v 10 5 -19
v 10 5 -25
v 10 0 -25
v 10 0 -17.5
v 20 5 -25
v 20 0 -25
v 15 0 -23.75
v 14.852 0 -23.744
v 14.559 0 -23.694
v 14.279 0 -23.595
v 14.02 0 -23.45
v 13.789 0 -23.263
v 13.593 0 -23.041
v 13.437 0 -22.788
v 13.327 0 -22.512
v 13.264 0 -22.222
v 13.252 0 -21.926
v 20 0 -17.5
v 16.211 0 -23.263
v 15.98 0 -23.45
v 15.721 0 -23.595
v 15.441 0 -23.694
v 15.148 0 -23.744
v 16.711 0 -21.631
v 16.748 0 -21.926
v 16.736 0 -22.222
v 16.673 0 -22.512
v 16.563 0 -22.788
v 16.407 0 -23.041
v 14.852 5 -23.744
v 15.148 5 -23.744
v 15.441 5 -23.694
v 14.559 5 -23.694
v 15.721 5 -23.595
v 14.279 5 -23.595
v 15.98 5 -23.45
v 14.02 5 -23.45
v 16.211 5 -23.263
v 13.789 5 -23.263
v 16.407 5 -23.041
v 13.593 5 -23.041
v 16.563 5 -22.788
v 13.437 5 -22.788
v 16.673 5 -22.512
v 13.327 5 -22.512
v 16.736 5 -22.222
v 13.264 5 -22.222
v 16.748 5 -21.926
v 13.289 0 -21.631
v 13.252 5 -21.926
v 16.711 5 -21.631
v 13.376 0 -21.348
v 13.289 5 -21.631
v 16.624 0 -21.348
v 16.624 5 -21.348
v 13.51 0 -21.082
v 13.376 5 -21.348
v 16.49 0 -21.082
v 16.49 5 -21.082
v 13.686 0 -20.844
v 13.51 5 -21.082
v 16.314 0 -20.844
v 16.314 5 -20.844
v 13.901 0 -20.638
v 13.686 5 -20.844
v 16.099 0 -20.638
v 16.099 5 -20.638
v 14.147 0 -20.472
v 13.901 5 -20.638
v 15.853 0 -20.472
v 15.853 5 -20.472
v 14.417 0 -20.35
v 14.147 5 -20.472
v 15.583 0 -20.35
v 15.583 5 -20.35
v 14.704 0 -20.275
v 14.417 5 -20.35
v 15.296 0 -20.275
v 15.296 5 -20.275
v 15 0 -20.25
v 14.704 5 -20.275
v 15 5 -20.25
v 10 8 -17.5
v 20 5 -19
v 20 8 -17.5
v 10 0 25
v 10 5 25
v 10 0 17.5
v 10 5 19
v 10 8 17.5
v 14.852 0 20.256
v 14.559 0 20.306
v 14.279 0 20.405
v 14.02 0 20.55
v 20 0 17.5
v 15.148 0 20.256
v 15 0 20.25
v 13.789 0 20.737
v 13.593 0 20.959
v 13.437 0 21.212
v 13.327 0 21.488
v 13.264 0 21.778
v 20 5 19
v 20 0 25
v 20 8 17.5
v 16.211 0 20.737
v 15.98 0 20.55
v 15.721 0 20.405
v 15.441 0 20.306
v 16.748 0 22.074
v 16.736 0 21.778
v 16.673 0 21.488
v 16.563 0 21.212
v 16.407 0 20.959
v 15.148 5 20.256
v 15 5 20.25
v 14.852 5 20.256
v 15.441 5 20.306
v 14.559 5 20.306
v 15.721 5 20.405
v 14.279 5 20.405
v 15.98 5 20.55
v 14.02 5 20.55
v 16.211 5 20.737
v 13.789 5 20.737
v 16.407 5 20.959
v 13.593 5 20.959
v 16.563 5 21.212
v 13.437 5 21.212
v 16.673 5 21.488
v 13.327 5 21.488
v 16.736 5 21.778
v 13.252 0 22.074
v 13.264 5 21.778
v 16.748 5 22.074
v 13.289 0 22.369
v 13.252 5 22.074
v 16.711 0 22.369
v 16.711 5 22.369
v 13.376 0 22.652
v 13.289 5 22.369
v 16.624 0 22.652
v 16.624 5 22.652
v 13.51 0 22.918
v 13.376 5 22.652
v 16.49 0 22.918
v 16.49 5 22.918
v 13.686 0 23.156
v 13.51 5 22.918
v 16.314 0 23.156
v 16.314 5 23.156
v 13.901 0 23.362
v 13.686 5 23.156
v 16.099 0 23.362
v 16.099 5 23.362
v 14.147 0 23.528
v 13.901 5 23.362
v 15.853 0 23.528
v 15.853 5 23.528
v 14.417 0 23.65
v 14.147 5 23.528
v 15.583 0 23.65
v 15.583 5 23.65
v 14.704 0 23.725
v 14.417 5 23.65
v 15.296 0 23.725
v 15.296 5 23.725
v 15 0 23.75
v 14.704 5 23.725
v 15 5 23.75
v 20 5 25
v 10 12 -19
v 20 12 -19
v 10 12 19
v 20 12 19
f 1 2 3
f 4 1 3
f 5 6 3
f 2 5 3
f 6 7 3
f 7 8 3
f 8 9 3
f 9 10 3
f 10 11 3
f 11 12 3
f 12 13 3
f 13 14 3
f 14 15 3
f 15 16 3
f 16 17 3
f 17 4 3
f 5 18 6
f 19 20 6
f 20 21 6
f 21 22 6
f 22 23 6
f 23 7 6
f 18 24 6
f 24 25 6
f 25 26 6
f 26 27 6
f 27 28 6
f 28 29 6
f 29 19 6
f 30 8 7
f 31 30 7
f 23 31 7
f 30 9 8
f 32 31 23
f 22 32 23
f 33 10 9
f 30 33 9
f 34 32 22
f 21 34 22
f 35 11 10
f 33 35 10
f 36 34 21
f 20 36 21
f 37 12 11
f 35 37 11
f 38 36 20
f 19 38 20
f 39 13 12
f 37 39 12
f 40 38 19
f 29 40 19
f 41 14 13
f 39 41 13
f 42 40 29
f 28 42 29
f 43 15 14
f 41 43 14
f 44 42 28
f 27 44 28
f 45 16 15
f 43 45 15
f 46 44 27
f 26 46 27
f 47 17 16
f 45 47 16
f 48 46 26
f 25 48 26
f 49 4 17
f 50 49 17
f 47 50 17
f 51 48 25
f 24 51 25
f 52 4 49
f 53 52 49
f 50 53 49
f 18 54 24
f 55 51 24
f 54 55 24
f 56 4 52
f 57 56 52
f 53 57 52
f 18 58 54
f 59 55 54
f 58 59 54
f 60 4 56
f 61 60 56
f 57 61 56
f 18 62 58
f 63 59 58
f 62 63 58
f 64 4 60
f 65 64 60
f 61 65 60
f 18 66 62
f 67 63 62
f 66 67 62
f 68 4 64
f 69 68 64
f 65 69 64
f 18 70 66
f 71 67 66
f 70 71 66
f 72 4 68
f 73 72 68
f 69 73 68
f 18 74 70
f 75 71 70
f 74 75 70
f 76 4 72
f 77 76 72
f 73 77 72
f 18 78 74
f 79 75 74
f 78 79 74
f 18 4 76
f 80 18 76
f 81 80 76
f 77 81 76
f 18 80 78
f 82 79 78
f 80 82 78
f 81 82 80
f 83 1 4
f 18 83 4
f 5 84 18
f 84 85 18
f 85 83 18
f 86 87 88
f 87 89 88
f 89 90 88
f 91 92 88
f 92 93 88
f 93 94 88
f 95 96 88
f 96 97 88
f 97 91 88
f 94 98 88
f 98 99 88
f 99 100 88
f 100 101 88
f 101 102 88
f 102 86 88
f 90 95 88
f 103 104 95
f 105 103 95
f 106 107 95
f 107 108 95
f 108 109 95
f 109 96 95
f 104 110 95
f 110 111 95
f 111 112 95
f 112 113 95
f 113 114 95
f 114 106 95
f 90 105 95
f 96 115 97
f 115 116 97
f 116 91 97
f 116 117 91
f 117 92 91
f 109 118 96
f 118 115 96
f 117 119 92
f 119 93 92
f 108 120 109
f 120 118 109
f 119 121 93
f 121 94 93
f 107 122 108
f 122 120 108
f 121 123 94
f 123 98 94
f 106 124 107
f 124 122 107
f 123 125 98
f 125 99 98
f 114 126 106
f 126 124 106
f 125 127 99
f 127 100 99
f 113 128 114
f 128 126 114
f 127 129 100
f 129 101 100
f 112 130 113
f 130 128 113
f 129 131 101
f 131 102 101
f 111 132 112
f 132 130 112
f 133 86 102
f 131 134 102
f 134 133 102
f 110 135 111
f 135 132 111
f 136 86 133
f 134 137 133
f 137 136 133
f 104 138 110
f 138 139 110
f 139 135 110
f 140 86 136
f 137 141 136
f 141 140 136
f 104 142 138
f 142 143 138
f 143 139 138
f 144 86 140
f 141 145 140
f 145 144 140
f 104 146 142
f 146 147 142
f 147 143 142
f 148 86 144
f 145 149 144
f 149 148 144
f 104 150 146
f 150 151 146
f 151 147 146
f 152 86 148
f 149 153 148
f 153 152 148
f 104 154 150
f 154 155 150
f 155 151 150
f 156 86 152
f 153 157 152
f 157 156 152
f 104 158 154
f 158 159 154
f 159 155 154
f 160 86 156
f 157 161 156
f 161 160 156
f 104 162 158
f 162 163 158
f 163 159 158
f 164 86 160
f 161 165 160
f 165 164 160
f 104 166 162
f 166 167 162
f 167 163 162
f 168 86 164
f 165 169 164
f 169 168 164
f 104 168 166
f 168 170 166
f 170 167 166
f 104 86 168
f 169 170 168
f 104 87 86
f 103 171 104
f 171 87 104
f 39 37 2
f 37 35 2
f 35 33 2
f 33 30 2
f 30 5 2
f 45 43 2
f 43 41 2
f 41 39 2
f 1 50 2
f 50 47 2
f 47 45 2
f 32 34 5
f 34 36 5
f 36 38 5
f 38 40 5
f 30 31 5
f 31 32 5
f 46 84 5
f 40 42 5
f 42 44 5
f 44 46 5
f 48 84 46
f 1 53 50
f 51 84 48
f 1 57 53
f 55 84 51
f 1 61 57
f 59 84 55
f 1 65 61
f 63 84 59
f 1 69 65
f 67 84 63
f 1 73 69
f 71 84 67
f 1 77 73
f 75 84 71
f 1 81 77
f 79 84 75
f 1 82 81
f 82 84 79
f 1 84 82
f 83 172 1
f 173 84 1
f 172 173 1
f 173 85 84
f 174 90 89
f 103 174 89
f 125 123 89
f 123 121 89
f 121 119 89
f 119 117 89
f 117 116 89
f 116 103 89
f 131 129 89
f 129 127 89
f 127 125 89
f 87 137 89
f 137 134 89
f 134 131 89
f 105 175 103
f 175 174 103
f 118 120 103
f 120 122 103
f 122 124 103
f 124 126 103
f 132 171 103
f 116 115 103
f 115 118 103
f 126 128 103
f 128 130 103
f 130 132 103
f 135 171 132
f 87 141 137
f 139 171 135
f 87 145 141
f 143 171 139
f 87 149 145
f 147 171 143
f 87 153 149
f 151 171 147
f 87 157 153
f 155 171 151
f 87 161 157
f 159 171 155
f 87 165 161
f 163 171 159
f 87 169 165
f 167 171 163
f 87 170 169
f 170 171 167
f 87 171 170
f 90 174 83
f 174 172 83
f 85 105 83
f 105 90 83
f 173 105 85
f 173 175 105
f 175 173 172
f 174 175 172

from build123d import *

# Parameters (mm, degrees)
CROQUIS1_W              = 40
CROQUIS1_H              = 50
SALIENTE_EXTRUIR1_DEPTH = 12
CROQUIS2_W              = 35
CROQUIS2_H              = 8
CORTAR_EXTRUIR1_DEPTH   = 65
CROQUIS3_W              = 30
CROQUIS3_H              = 50
CORTAR_EXTRUIR2_DEPTH   = 65
CROQUIS4_W              = 10
CROQUIS4_H              = 6
CORTAR_EXTRUIR3_DEPTH   = 7
CROQUIS5_R              = 1.75
CORTAR_EXTRUIR4_DEPTH   = 7


with BuildPart() as part:
    # Croquis1 → Saliente-Extruir1 (new body)
    with BuildSketch(Plane(origin=(0, 0, 0), x_dir=(1, 0, 0), z_dir=(0, 1, 0))):
        Rectangle(CROQUIS1_W, CROQUIS1_H)
    extrude(amount=SALIENTE_EXTRUIR1_DEPTH)

    # Croquis2 → Cortar-Extruir1 (cut)
    with BuildSketch(Plane(origin=(20, 0, 0), x_dir=(0, 0, -1), z_dir=(1, 0, 0))):
        with Locations((0, 4)):
            Rectangle(CROQUIS2_W, CROQUIS2_H)
    extrude(amount=-CORTAR_EXTRUIR1_DEPTH, mode=Mode.SUBTRACT)

    # Croquis3 → Cortar-Extruir2 (cut)
    with BuildSketch(Plane(origin=(0, 12, 0), x_dir=(1, 0, 0), z_dir=(0, 1, 0))):
        with Locations((-5, 0)):
            Rectangle(CROQUIS3_W, CROQUIS3_H)
    extrude(amount=-CORTAR_EXTRUIR2_DEPTH, mode=Mode.SUBTRACT)

    # Croquis4 → Cortar-Extruir3 (cut)
    with BuildSketch(Plane(origin=(0, 12, 0), x_dir=(1, 0, 0), z_dir=(0, 1, 0))):
        with Locations((15, 22)):
            Rectangle(CROQUIS4_W, CROQUIS4_H)
    cortar_extruir3 = extrude(amount=-CORTAR_EXTRUIR3_DEPTH, mode=Mode.SUBTRACT)

    # Simetría1: Cortar-Extruir3 across plane
    add(cortar_extruir3.mirror(Plane.XY), mode=Mode.SUBTRACT)

    # Croquis5 → Cortar-Extruir4 (cut)
    with BuildSketch(Plane(origin=(0, 5, 0), x_dir=(1, 0, 0), z_dir=(0, 1, 0))):
        with Locations(Location((15, 22, 0), (0, 0, 270))):
            Circle(CROQUIS5_R)
    cortar_extruir4 = extrude(amount=-CORTAR_EXTRUIR4_DEPTH, mode=Mode.SUBTRACT)

    # Simetría2: Cortar-Extruir4 across plane
    add(cortar_extruir4.mirror(Plane.XY), mode=Mode.SUBTRACT)


solid = part.part
